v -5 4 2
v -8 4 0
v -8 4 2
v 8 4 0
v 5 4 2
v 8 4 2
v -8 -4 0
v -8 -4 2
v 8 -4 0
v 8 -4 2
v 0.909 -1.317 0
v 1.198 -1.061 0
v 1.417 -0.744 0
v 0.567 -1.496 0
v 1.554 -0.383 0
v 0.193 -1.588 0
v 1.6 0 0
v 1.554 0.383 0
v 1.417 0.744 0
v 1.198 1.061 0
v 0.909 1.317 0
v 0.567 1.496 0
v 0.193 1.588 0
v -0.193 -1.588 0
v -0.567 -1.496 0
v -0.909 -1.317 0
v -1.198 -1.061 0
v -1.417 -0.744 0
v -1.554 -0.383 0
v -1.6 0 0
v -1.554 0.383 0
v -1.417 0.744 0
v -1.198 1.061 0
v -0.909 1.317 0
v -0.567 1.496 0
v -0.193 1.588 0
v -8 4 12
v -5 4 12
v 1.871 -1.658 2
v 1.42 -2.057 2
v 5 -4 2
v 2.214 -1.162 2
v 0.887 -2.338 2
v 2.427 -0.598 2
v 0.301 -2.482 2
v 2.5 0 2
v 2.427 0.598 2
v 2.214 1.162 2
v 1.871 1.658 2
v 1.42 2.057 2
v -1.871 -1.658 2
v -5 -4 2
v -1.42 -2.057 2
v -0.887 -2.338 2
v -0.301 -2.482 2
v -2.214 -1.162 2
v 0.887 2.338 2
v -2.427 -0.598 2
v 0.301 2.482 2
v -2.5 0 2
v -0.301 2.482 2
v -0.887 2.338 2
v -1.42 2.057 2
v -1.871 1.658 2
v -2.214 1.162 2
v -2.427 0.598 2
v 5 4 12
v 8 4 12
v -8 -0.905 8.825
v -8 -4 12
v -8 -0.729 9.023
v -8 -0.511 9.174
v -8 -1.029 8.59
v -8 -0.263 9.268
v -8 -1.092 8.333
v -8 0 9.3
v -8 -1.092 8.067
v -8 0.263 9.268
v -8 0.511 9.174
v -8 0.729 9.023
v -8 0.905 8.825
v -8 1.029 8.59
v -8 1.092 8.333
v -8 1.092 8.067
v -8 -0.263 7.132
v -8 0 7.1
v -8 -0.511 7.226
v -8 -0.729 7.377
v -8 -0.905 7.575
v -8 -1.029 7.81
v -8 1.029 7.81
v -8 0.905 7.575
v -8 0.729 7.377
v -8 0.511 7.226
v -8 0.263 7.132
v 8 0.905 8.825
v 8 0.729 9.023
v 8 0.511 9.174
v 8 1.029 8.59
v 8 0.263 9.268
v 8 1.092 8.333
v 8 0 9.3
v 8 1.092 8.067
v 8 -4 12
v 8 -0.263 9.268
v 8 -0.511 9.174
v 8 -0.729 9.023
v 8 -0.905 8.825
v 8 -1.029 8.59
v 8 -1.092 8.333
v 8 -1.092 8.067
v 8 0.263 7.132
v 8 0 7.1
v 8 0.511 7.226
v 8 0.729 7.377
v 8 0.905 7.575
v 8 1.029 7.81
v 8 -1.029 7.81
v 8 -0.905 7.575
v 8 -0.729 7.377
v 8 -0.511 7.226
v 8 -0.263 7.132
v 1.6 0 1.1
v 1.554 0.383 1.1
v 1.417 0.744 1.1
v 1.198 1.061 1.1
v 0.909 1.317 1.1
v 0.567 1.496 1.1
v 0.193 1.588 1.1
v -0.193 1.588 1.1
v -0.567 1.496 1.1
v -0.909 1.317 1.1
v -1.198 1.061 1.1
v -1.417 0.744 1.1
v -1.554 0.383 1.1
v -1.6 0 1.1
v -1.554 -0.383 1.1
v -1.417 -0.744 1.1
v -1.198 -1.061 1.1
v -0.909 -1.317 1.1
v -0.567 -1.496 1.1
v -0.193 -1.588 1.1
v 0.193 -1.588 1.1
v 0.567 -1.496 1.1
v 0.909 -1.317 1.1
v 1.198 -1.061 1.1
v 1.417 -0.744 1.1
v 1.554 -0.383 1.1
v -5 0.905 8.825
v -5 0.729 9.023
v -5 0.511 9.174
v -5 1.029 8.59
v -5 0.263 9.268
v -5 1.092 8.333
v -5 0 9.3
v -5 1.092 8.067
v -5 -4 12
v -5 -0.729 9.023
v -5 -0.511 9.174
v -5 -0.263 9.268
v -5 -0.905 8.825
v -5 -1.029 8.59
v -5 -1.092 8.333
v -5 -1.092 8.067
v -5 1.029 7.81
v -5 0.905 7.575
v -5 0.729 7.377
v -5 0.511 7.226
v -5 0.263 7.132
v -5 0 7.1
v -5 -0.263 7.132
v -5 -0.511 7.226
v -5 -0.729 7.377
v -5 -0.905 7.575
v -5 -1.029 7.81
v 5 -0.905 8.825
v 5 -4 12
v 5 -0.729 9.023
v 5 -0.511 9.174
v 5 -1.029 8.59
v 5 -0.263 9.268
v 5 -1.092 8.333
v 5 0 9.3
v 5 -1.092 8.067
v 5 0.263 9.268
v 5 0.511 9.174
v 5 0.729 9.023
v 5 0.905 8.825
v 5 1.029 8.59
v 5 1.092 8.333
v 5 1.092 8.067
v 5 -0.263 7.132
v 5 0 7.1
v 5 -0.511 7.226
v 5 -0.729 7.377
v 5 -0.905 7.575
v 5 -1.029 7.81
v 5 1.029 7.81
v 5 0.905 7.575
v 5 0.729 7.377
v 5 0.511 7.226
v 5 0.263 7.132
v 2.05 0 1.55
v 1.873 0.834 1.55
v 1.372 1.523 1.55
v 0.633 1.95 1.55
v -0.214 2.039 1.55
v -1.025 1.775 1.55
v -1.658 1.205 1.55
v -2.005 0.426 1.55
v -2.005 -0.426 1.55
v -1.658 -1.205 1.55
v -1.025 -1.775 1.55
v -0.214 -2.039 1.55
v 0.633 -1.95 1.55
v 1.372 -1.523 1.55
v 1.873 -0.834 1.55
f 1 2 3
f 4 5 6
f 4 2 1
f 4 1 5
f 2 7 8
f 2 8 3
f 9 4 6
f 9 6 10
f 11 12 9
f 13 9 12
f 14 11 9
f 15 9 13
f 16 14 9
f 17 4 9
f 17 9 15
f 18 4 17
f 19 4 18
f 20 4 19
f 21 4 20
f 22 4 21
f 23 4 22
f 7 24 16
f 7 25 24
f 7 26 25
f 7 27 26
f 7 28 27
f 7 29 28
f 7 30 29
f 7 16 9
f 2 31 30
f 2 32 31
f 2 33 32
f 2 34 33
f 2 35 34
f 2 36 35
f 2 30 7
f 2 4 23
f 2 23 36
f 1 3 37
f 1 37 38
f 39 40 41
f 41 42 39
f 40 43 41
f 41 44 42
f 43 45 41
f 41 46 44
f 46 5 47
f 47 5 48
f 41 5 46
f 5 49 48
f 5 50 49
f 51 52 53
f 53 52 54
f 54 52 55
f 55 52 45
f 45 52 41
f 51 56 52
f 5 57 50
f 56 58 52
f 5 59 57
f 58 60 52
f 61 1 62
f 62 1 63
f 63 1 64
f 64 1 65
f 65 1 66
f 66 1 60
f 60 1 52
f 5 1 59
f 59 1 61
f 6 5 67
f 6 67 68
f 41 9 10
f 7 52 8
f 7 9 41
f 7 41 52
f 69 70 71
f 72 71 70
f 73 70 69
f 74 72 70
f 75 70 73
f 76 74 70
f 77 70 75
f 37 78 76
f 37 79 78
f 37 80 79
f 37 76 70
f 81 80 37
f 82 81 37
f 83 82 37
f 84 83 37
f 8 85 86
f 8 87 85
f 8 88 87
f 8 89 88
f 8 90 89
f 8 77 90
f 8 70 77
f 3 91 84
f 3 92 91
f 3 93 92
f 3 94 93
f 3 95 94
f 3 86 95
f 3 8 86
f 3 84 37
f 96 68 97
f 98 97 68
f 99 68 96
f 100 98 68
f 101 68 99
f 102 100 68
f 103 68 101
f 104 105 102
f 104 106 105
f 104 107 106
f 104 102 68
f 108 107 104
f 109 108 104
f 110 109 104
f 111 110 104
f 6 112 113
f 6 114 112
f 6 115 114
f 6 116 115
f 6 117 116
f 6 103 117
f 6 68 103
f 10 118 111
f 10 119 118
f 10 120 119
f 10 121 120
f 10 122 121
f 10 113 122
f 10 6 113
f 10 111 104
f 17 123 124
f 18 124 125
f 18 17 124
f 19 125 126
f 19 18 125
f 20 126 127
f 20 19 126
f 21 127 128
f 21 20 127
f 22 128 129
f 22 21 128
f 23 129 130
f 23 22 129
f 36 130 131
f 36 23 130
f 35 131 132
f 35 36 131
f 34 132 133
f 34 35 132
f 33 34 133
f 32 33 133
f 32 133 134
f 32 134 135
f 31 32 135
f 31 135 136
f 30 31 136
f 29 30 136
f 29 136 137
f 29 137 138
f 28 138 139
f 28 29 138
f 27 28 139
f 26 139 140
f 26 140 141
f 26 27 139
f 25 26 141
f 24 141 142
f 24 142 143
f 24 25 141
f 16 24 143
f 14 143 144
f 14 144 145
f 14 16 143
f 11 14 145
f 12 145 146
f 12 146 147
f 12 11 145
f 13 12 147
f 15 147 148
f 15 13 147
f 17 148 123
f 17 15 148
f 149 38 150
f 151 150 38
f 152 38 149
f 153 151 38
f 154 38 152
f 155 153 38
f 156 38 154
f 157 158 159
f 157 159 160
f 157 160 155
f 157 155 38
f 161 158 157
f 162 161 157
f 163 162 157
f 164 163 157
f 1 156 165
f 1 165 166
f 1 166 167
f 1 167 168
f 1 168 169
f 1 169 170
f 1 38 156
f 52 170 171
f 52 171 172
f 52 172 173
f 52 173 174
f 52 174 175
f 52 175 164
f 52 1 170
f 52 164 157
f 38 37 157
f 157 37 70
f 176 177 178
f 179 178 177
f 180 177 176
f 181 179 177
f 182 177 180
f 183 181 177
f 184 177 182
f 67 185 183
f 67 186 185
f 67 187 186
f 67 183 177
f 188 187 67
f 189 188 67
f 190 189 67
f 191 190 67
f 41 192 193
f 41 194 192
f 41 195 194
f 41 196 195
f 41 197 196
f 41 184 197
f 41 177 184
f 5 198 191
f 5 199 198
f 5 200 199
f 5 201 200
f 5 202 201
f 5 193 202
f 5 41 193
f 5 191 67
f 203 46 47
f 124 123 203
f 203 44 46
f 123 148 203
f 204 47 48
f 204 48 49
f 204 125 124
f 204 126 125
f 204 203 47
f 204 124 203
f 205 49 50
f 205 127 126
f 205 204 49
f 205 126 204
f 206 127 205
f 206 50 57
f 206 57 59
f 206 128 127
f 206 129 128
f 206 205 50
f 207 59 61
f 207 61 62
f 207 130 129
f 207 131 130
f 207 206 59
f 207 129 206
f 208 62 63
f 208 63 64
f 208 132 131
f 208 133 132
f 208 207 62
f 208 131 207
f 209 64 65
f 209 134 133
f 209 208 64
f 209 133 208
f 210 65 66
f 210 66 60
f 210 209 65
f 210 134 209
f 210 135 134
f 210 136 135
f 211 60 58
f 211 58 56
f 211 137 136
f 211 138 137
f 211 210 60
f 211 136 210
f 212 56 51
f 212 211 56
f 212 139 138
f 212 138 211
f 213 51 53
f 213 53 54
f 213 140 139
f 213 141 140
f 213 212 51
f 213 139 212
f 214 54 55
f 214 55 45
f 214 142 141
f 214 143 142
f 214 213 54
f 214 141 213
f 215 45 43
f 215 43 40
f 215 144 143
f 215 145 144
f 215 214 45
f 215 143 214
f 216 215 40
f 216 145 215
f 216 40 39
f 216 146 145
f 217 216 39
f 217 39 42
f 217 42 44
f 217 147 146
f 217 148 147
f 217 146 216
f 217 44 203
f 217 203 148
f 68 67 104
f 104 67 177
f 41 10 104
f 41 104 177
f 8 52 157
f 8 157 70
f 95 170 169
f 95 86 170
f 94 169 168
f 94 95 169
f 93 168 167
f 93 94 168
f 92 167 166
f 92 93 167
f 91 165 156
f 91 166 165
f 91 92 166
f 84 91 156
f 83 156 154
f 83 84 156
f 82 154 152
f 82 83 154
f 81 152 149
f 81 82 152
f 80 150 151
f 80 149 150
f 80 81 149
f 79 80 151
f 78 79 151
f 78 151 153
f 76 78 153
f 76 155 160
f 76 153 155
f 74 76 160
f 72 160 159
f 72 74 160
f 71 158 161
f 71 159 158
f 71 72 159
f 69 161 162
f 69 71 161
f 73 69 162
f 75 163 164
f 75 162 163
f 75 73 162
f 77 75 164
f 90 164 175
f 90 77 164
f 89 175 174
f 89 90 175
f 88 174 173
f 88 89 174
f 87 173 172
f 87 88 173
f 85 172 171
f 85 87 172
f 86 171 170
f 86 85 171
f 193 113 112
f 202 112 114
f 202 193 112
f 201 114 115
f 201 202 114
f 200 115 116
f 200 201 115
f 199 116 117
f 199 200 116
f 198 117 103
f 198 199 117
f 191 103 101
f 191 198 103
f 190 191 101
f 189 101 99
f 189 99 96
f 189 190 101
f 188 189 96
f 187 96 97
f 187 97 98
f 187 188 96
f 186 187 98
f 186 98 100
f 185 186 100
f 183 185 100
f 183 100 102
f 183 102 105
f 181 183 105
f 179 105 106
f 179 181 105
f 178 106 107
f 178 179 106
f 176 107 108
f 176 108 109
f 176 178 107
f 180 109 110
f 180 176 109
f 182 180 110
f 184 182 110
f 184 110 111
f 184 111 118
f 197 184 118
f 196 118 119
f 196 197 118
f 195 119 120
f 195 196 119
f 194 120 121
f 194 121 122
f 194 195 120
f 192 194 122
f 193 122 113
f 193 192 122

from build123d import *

# Parameters (mm, degrees)
SKETCH_W            = 16
SKETCH_H            = 8
PAD_DEPTH           = 2
SKETCH001_W         = 3
SKETCH001_H         = 8
PAD001_DEPTH        = 10
SKETCH002_R         = 1.1
HOLE_DEPTH          = 16.001
HOLE001_D           = 3.2
HOLE001_CSINK_D     = 5
HOLE001_CSINK_ANGLE = 90


with BuildPart() as part:
    # Sketch → Pad (new body)
    with BuildSketch(Plane.XY):
        Rectangle(SKETCH_W, SKETCH_H)
    extrude(amount=PAD_DEPTH)

    # Sketch001 (on Face6 of Pad) → Pad001 (join)
    with BuildSketch(Plane.XY.offset(2)):
        with Locations((-6.5, 0)):
            Rectangle(SKETCH001_W, SKETCH001_H)
        with Locations((6.5, 0)):
            Rectangle(SKETCH001_W, SKETCH001_H)
    extrude(amount=PAD001_DEPTH)

    # Sketch002 (on Face10 of Pad001) → Hole (cut, through all)
    with BuildSketch(Plane.YZ.offset(8)):
        with Locations((0, 8.2)):
            Circle(SKETCH002_R)
    extrude(amount=-HOLE_DEPTH, mode=Mode.SUBTRACT)

    # Hole001 (through all)
    with Locations(Plane.XY.offset(2)):
        with Locations((0, 0)):
            CounterSinkHole(HOLE001_D / 2, HOLE001_CSINK_D / 2, counter_sink_angle=HOLE001_CSINK_ANGLE)


solid = part.part
